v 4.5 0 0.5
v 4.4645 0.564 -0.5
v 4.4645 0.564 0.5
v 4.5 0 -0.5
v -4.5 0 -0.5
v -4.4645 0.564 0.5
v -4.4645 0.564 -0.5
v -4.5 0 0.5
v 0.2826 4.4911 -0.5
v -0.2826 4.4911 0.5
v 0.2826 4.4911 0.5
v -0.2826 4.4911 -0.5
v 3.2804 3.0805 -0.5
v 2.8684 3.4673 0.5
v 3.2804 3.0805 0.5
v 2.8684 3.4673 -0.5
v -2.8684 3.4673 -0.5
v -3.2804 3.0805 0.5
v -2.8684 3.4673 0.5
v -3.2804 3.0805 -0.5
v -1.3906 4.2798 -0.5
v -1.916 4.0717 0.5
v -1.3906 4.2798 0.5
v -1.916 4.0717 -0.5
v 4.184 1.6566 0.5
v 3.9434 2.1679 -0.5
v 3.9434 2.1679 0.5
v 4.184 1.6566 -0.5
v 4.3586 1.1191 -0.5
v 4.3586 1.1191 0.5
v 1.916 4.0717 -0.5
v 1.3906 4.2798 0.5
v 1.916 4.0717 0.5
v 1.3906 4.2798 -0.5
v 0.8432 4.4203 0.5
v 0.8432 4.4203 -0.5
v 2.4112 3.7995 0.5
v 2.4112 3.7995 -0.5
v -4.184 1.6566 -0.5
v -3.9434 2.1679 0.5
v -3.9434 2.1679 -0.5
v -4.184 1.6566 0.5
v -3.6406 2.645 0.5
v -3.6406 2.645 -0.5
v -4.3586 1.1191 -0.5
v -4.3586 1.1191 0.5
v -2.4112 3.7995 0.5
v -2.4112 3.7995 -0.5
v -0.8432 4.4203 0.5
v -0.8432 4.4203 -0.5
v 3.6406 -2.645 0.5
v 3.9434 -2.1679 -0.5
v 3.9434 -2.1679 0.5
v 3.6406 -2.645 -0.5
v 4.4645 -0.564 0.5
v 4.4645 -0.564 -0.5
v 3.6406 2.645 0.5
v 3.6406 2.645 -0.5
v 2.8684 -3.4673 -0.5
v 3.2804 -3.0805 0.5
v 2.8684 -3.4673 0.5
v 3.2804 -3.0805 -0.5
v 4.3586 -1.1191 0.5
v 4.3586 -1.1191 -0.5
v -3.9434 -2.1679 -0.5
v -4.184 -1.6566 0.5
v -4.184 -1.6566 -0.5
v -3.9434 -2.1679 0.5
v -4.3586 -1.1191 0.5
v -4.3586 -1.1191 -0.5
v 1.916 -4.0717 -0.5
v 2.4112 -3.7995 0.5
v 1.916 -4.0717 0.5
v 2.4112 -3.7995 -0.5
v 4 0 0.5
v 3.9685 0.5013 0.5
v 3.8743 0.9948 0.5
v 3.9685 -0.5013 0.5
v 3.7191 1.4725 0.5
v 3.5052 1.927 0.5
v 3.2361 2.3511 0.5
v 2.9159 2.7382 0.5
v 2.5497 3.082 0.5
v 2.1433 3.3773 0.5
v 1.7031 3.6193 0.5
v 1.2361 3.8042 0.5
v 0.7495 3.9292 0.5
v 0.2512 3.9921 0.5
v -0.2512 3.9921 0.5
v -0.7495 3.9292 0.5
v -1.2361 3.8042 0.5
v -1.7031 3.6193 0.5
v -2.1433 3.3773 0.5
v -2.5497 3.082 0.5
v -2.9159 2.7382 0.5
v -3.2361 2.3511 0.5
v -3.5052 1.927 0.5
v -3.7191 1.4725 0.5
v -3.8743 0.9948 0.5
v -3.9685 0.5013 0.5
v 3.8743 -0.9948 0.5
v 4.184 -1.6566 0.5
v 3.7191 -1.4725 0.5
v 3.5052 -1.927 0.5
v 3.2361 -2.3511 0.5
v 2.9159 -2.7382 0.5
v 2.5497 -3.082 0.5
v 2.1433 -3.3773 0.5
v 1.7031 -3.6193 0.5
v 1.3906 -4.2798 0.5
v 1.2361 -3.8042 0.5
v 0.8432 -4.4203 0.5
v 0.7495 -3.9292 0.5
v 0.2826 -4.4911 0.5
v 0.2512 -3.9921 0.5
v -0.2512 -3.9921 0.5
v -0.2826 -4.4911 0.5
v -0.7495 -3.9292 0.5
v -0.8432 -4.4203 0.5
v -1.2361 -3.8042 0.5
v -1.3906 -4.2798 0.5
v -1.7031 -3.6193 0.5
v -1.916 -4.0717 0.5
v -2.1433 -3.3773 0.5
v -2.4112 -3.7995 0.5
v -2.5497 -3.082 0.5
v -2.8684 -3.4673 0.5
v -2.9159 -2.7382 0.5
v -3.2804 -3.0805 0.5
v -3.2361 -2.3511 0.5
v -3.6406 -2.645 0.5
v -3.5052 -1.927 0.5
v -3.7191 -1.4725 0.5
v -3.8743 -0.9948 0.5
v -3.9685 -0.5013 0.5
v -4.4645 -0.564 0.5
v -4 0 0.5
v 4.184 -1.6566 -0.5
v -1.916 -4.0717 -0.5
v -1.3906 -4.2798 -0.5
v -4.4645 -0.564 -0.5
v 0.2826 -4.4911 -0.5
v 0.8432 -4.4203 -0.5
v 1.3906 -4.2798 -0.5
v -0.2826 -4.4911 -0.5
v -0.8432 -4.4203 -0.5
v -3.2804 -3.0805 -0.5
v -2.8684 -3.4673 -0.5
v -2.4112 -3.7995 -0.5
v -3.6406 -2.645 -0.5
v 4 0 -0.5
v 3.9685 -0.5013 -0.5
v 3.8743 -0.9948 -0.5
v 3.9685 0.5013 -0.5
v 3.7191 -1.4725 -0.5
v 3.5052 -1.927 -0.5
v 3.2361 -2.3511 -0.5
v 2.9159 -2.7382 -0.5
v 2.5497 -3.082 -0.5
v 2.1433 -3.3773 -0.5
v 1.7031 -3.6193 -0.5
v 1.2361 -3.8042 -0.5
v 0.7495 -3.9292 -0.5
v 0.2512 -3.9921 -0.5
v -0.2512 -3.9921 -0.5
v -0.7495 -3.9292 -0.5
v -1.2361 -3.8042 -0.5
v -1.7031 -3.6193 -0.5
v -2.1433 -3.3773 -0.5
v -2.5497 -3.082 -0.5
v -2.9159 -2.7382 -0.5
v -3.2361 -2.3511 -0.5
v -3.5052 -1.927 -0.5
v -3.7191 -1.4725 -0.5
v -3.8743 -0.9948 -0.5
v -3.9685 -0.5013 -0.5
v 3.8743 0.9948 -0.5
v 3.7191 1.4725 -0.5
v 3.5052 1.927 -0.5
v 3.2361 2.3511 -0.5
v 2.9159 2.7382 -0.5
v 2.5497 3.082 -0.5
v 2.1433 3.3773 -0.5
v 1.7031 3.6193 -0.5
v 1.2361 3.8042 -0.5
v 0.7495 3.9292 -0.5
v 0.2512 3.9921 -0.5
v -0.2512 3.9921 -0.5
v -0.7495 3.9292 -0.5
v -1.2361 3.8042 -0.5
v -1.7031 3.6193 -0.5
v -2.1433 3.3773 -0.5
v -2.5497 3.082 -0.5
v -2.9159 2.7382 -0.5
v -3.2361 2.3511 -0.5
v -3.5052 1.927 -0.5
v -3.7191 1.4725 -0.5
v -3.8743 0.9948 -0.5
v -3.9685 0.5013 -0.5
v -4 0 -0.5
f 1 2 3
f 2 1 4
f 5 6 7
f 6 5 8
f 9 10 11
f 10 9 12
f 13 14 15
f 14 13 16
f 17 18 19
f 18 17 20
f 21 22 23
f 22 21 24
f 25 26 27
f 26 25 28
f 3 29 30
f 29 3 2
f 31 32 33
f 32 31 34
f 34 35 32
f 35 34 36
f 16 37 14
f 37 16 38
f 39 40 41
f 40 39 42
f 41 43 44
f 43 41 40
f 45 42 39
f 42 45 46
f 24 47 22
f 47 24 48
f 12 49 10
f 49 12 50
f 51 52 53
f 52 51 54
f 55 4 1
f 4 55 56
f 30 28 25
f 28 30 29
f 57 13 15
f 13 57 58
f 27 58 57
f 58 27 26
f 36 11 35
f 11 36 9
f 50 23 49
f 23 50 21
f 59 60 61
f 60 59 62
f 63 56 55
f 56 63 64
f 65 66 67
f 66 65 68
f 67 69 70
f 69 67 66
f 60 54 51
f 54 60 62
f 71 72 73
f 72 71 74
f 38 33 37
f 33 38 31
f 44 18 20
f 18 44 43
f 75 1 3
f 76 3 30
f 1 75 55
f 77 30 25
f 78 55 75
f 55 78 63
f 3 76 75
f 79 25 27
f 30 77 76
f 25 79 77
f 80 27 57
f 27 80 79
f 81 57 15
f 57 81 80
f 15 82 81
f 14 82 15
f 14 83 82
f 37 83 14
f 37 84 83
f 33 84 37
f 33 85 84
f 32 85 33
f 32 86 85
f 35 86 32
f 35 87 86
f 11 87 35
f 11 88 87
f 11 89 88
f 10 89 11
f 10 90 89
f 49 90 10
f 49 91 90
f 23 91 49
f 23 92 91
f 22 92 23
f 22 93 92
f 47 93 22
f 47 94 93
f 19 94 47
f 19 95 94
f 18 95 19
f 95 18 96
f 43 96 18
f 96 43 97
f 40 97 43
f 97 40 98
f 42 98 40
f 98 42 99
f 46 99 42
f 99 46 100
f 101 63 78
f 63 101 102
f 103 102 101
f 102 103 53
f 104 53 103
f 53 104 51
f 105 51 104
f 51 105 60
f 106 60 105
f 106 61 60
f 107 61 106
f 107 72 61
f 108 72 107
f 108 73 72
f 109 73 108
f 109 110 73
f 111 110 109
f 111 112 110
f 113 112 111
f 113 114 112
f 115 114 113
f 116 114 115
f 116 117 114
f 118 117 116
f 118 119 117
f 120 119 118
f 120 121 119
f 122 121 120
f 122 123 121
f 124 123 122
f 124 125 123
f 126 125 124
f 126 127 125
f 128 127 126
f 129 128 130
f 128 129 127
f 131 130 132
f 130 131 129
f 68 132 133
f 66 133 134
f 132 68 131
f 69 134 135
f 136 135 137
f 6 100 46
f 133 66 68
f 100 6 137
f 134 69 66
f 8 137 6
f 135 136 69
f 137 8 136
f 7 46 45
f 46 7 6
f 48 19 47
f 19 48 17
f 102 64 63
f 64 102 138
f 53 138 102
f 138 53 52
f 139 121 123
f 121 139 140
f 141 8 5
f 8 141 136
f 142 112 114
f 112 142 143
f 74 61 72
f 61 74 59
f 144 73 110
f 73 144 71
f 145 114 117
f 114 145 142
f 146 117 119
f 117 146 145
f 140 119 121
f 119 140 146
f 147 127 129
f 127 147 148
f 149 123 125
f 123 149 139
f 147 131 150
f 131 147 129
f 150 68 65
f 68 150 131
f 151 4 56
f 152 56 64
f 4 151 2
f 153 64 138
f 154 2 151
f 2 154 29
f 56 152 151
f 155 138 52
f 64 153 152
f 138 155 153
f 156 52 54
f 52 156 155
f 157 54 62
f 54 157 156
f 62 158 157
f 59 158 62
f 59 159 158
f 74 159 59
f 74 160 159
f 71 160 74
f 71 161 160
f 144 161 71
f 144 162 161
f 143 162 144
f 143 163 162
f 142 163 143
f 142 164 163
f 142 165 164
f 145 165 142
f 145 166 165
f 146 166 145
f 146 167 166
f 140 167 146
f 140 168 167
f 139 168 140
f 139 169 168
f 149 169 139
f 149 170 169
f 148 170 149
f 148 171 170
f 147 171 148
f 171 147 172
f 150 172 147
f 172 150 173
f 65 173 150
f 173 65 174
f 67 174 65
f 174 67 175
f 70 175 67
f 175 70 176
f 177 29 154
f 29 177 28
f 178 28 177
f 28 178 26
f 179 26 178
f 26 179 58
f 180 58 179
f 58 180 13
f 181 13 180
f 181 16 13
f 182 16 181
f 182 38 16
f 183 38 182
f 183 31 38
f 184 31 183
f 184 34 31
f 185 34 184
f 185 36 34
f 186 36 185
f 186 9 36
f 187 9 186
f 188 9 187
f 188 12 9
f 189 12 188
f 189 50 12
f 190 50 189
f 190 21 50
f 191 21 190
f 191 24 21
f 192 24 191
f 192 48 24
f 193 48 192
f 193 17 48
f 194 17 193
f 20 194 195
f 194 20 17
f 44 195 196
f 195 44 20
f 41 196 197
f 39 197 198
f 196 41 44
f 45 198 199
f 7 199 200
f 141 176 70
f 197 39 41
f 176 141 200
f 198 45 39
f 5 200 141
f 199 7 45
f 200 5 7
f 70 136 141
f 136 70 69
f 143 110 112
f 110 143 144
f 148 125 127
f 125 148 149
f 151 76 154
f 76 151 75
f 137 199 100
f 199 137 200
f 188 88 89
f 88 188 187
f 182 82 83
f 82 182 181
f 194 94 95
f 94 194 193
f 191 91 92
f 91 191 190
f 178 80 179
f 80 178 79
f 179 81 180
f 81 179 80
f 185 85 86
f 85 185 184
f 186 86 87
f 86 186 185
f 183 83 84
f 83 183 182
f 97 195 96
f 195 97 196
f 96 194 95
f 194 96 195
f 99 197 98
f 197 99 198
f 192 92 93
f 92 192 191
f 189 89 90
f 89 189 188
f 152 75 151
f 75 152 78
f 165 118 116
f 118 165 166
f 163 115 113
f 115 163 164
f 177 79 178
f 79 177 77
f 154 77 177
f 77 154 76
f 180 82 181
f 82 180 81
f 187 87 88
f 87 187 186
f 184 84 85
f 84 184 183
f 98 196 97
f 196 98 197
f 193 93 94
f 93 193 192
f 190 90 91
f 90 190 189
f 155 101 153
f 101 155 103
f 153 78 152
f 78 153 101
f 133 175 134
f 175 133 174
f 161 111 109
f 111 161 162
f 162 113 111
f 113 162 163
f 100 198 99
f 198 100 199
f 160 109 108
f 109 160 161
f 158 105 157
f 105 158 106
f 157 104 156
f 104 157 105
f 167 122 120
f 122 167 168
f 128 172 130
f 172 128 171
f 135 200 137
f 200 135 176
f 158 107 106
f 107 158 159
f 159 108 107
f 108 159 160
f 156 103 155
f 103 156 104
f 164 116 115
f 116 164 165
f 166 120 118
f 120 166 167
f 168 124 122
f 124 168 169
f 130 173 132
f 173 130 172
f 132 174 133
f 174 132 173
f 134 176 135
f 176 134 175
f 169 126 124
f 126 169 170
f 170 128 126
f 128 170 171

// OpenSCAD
$fn = 50;


difference() {
	union() {
		translate(v = [0, 0, -0.5000000000]) {
			cylinder(h = 1, r = 4.5000000000);
		}
	}
	union() {
		translate(v = [0, 0, -100.0000000000]) {
			cylinder(h = 200, r = 4.0000000000);
		}
	}
}
